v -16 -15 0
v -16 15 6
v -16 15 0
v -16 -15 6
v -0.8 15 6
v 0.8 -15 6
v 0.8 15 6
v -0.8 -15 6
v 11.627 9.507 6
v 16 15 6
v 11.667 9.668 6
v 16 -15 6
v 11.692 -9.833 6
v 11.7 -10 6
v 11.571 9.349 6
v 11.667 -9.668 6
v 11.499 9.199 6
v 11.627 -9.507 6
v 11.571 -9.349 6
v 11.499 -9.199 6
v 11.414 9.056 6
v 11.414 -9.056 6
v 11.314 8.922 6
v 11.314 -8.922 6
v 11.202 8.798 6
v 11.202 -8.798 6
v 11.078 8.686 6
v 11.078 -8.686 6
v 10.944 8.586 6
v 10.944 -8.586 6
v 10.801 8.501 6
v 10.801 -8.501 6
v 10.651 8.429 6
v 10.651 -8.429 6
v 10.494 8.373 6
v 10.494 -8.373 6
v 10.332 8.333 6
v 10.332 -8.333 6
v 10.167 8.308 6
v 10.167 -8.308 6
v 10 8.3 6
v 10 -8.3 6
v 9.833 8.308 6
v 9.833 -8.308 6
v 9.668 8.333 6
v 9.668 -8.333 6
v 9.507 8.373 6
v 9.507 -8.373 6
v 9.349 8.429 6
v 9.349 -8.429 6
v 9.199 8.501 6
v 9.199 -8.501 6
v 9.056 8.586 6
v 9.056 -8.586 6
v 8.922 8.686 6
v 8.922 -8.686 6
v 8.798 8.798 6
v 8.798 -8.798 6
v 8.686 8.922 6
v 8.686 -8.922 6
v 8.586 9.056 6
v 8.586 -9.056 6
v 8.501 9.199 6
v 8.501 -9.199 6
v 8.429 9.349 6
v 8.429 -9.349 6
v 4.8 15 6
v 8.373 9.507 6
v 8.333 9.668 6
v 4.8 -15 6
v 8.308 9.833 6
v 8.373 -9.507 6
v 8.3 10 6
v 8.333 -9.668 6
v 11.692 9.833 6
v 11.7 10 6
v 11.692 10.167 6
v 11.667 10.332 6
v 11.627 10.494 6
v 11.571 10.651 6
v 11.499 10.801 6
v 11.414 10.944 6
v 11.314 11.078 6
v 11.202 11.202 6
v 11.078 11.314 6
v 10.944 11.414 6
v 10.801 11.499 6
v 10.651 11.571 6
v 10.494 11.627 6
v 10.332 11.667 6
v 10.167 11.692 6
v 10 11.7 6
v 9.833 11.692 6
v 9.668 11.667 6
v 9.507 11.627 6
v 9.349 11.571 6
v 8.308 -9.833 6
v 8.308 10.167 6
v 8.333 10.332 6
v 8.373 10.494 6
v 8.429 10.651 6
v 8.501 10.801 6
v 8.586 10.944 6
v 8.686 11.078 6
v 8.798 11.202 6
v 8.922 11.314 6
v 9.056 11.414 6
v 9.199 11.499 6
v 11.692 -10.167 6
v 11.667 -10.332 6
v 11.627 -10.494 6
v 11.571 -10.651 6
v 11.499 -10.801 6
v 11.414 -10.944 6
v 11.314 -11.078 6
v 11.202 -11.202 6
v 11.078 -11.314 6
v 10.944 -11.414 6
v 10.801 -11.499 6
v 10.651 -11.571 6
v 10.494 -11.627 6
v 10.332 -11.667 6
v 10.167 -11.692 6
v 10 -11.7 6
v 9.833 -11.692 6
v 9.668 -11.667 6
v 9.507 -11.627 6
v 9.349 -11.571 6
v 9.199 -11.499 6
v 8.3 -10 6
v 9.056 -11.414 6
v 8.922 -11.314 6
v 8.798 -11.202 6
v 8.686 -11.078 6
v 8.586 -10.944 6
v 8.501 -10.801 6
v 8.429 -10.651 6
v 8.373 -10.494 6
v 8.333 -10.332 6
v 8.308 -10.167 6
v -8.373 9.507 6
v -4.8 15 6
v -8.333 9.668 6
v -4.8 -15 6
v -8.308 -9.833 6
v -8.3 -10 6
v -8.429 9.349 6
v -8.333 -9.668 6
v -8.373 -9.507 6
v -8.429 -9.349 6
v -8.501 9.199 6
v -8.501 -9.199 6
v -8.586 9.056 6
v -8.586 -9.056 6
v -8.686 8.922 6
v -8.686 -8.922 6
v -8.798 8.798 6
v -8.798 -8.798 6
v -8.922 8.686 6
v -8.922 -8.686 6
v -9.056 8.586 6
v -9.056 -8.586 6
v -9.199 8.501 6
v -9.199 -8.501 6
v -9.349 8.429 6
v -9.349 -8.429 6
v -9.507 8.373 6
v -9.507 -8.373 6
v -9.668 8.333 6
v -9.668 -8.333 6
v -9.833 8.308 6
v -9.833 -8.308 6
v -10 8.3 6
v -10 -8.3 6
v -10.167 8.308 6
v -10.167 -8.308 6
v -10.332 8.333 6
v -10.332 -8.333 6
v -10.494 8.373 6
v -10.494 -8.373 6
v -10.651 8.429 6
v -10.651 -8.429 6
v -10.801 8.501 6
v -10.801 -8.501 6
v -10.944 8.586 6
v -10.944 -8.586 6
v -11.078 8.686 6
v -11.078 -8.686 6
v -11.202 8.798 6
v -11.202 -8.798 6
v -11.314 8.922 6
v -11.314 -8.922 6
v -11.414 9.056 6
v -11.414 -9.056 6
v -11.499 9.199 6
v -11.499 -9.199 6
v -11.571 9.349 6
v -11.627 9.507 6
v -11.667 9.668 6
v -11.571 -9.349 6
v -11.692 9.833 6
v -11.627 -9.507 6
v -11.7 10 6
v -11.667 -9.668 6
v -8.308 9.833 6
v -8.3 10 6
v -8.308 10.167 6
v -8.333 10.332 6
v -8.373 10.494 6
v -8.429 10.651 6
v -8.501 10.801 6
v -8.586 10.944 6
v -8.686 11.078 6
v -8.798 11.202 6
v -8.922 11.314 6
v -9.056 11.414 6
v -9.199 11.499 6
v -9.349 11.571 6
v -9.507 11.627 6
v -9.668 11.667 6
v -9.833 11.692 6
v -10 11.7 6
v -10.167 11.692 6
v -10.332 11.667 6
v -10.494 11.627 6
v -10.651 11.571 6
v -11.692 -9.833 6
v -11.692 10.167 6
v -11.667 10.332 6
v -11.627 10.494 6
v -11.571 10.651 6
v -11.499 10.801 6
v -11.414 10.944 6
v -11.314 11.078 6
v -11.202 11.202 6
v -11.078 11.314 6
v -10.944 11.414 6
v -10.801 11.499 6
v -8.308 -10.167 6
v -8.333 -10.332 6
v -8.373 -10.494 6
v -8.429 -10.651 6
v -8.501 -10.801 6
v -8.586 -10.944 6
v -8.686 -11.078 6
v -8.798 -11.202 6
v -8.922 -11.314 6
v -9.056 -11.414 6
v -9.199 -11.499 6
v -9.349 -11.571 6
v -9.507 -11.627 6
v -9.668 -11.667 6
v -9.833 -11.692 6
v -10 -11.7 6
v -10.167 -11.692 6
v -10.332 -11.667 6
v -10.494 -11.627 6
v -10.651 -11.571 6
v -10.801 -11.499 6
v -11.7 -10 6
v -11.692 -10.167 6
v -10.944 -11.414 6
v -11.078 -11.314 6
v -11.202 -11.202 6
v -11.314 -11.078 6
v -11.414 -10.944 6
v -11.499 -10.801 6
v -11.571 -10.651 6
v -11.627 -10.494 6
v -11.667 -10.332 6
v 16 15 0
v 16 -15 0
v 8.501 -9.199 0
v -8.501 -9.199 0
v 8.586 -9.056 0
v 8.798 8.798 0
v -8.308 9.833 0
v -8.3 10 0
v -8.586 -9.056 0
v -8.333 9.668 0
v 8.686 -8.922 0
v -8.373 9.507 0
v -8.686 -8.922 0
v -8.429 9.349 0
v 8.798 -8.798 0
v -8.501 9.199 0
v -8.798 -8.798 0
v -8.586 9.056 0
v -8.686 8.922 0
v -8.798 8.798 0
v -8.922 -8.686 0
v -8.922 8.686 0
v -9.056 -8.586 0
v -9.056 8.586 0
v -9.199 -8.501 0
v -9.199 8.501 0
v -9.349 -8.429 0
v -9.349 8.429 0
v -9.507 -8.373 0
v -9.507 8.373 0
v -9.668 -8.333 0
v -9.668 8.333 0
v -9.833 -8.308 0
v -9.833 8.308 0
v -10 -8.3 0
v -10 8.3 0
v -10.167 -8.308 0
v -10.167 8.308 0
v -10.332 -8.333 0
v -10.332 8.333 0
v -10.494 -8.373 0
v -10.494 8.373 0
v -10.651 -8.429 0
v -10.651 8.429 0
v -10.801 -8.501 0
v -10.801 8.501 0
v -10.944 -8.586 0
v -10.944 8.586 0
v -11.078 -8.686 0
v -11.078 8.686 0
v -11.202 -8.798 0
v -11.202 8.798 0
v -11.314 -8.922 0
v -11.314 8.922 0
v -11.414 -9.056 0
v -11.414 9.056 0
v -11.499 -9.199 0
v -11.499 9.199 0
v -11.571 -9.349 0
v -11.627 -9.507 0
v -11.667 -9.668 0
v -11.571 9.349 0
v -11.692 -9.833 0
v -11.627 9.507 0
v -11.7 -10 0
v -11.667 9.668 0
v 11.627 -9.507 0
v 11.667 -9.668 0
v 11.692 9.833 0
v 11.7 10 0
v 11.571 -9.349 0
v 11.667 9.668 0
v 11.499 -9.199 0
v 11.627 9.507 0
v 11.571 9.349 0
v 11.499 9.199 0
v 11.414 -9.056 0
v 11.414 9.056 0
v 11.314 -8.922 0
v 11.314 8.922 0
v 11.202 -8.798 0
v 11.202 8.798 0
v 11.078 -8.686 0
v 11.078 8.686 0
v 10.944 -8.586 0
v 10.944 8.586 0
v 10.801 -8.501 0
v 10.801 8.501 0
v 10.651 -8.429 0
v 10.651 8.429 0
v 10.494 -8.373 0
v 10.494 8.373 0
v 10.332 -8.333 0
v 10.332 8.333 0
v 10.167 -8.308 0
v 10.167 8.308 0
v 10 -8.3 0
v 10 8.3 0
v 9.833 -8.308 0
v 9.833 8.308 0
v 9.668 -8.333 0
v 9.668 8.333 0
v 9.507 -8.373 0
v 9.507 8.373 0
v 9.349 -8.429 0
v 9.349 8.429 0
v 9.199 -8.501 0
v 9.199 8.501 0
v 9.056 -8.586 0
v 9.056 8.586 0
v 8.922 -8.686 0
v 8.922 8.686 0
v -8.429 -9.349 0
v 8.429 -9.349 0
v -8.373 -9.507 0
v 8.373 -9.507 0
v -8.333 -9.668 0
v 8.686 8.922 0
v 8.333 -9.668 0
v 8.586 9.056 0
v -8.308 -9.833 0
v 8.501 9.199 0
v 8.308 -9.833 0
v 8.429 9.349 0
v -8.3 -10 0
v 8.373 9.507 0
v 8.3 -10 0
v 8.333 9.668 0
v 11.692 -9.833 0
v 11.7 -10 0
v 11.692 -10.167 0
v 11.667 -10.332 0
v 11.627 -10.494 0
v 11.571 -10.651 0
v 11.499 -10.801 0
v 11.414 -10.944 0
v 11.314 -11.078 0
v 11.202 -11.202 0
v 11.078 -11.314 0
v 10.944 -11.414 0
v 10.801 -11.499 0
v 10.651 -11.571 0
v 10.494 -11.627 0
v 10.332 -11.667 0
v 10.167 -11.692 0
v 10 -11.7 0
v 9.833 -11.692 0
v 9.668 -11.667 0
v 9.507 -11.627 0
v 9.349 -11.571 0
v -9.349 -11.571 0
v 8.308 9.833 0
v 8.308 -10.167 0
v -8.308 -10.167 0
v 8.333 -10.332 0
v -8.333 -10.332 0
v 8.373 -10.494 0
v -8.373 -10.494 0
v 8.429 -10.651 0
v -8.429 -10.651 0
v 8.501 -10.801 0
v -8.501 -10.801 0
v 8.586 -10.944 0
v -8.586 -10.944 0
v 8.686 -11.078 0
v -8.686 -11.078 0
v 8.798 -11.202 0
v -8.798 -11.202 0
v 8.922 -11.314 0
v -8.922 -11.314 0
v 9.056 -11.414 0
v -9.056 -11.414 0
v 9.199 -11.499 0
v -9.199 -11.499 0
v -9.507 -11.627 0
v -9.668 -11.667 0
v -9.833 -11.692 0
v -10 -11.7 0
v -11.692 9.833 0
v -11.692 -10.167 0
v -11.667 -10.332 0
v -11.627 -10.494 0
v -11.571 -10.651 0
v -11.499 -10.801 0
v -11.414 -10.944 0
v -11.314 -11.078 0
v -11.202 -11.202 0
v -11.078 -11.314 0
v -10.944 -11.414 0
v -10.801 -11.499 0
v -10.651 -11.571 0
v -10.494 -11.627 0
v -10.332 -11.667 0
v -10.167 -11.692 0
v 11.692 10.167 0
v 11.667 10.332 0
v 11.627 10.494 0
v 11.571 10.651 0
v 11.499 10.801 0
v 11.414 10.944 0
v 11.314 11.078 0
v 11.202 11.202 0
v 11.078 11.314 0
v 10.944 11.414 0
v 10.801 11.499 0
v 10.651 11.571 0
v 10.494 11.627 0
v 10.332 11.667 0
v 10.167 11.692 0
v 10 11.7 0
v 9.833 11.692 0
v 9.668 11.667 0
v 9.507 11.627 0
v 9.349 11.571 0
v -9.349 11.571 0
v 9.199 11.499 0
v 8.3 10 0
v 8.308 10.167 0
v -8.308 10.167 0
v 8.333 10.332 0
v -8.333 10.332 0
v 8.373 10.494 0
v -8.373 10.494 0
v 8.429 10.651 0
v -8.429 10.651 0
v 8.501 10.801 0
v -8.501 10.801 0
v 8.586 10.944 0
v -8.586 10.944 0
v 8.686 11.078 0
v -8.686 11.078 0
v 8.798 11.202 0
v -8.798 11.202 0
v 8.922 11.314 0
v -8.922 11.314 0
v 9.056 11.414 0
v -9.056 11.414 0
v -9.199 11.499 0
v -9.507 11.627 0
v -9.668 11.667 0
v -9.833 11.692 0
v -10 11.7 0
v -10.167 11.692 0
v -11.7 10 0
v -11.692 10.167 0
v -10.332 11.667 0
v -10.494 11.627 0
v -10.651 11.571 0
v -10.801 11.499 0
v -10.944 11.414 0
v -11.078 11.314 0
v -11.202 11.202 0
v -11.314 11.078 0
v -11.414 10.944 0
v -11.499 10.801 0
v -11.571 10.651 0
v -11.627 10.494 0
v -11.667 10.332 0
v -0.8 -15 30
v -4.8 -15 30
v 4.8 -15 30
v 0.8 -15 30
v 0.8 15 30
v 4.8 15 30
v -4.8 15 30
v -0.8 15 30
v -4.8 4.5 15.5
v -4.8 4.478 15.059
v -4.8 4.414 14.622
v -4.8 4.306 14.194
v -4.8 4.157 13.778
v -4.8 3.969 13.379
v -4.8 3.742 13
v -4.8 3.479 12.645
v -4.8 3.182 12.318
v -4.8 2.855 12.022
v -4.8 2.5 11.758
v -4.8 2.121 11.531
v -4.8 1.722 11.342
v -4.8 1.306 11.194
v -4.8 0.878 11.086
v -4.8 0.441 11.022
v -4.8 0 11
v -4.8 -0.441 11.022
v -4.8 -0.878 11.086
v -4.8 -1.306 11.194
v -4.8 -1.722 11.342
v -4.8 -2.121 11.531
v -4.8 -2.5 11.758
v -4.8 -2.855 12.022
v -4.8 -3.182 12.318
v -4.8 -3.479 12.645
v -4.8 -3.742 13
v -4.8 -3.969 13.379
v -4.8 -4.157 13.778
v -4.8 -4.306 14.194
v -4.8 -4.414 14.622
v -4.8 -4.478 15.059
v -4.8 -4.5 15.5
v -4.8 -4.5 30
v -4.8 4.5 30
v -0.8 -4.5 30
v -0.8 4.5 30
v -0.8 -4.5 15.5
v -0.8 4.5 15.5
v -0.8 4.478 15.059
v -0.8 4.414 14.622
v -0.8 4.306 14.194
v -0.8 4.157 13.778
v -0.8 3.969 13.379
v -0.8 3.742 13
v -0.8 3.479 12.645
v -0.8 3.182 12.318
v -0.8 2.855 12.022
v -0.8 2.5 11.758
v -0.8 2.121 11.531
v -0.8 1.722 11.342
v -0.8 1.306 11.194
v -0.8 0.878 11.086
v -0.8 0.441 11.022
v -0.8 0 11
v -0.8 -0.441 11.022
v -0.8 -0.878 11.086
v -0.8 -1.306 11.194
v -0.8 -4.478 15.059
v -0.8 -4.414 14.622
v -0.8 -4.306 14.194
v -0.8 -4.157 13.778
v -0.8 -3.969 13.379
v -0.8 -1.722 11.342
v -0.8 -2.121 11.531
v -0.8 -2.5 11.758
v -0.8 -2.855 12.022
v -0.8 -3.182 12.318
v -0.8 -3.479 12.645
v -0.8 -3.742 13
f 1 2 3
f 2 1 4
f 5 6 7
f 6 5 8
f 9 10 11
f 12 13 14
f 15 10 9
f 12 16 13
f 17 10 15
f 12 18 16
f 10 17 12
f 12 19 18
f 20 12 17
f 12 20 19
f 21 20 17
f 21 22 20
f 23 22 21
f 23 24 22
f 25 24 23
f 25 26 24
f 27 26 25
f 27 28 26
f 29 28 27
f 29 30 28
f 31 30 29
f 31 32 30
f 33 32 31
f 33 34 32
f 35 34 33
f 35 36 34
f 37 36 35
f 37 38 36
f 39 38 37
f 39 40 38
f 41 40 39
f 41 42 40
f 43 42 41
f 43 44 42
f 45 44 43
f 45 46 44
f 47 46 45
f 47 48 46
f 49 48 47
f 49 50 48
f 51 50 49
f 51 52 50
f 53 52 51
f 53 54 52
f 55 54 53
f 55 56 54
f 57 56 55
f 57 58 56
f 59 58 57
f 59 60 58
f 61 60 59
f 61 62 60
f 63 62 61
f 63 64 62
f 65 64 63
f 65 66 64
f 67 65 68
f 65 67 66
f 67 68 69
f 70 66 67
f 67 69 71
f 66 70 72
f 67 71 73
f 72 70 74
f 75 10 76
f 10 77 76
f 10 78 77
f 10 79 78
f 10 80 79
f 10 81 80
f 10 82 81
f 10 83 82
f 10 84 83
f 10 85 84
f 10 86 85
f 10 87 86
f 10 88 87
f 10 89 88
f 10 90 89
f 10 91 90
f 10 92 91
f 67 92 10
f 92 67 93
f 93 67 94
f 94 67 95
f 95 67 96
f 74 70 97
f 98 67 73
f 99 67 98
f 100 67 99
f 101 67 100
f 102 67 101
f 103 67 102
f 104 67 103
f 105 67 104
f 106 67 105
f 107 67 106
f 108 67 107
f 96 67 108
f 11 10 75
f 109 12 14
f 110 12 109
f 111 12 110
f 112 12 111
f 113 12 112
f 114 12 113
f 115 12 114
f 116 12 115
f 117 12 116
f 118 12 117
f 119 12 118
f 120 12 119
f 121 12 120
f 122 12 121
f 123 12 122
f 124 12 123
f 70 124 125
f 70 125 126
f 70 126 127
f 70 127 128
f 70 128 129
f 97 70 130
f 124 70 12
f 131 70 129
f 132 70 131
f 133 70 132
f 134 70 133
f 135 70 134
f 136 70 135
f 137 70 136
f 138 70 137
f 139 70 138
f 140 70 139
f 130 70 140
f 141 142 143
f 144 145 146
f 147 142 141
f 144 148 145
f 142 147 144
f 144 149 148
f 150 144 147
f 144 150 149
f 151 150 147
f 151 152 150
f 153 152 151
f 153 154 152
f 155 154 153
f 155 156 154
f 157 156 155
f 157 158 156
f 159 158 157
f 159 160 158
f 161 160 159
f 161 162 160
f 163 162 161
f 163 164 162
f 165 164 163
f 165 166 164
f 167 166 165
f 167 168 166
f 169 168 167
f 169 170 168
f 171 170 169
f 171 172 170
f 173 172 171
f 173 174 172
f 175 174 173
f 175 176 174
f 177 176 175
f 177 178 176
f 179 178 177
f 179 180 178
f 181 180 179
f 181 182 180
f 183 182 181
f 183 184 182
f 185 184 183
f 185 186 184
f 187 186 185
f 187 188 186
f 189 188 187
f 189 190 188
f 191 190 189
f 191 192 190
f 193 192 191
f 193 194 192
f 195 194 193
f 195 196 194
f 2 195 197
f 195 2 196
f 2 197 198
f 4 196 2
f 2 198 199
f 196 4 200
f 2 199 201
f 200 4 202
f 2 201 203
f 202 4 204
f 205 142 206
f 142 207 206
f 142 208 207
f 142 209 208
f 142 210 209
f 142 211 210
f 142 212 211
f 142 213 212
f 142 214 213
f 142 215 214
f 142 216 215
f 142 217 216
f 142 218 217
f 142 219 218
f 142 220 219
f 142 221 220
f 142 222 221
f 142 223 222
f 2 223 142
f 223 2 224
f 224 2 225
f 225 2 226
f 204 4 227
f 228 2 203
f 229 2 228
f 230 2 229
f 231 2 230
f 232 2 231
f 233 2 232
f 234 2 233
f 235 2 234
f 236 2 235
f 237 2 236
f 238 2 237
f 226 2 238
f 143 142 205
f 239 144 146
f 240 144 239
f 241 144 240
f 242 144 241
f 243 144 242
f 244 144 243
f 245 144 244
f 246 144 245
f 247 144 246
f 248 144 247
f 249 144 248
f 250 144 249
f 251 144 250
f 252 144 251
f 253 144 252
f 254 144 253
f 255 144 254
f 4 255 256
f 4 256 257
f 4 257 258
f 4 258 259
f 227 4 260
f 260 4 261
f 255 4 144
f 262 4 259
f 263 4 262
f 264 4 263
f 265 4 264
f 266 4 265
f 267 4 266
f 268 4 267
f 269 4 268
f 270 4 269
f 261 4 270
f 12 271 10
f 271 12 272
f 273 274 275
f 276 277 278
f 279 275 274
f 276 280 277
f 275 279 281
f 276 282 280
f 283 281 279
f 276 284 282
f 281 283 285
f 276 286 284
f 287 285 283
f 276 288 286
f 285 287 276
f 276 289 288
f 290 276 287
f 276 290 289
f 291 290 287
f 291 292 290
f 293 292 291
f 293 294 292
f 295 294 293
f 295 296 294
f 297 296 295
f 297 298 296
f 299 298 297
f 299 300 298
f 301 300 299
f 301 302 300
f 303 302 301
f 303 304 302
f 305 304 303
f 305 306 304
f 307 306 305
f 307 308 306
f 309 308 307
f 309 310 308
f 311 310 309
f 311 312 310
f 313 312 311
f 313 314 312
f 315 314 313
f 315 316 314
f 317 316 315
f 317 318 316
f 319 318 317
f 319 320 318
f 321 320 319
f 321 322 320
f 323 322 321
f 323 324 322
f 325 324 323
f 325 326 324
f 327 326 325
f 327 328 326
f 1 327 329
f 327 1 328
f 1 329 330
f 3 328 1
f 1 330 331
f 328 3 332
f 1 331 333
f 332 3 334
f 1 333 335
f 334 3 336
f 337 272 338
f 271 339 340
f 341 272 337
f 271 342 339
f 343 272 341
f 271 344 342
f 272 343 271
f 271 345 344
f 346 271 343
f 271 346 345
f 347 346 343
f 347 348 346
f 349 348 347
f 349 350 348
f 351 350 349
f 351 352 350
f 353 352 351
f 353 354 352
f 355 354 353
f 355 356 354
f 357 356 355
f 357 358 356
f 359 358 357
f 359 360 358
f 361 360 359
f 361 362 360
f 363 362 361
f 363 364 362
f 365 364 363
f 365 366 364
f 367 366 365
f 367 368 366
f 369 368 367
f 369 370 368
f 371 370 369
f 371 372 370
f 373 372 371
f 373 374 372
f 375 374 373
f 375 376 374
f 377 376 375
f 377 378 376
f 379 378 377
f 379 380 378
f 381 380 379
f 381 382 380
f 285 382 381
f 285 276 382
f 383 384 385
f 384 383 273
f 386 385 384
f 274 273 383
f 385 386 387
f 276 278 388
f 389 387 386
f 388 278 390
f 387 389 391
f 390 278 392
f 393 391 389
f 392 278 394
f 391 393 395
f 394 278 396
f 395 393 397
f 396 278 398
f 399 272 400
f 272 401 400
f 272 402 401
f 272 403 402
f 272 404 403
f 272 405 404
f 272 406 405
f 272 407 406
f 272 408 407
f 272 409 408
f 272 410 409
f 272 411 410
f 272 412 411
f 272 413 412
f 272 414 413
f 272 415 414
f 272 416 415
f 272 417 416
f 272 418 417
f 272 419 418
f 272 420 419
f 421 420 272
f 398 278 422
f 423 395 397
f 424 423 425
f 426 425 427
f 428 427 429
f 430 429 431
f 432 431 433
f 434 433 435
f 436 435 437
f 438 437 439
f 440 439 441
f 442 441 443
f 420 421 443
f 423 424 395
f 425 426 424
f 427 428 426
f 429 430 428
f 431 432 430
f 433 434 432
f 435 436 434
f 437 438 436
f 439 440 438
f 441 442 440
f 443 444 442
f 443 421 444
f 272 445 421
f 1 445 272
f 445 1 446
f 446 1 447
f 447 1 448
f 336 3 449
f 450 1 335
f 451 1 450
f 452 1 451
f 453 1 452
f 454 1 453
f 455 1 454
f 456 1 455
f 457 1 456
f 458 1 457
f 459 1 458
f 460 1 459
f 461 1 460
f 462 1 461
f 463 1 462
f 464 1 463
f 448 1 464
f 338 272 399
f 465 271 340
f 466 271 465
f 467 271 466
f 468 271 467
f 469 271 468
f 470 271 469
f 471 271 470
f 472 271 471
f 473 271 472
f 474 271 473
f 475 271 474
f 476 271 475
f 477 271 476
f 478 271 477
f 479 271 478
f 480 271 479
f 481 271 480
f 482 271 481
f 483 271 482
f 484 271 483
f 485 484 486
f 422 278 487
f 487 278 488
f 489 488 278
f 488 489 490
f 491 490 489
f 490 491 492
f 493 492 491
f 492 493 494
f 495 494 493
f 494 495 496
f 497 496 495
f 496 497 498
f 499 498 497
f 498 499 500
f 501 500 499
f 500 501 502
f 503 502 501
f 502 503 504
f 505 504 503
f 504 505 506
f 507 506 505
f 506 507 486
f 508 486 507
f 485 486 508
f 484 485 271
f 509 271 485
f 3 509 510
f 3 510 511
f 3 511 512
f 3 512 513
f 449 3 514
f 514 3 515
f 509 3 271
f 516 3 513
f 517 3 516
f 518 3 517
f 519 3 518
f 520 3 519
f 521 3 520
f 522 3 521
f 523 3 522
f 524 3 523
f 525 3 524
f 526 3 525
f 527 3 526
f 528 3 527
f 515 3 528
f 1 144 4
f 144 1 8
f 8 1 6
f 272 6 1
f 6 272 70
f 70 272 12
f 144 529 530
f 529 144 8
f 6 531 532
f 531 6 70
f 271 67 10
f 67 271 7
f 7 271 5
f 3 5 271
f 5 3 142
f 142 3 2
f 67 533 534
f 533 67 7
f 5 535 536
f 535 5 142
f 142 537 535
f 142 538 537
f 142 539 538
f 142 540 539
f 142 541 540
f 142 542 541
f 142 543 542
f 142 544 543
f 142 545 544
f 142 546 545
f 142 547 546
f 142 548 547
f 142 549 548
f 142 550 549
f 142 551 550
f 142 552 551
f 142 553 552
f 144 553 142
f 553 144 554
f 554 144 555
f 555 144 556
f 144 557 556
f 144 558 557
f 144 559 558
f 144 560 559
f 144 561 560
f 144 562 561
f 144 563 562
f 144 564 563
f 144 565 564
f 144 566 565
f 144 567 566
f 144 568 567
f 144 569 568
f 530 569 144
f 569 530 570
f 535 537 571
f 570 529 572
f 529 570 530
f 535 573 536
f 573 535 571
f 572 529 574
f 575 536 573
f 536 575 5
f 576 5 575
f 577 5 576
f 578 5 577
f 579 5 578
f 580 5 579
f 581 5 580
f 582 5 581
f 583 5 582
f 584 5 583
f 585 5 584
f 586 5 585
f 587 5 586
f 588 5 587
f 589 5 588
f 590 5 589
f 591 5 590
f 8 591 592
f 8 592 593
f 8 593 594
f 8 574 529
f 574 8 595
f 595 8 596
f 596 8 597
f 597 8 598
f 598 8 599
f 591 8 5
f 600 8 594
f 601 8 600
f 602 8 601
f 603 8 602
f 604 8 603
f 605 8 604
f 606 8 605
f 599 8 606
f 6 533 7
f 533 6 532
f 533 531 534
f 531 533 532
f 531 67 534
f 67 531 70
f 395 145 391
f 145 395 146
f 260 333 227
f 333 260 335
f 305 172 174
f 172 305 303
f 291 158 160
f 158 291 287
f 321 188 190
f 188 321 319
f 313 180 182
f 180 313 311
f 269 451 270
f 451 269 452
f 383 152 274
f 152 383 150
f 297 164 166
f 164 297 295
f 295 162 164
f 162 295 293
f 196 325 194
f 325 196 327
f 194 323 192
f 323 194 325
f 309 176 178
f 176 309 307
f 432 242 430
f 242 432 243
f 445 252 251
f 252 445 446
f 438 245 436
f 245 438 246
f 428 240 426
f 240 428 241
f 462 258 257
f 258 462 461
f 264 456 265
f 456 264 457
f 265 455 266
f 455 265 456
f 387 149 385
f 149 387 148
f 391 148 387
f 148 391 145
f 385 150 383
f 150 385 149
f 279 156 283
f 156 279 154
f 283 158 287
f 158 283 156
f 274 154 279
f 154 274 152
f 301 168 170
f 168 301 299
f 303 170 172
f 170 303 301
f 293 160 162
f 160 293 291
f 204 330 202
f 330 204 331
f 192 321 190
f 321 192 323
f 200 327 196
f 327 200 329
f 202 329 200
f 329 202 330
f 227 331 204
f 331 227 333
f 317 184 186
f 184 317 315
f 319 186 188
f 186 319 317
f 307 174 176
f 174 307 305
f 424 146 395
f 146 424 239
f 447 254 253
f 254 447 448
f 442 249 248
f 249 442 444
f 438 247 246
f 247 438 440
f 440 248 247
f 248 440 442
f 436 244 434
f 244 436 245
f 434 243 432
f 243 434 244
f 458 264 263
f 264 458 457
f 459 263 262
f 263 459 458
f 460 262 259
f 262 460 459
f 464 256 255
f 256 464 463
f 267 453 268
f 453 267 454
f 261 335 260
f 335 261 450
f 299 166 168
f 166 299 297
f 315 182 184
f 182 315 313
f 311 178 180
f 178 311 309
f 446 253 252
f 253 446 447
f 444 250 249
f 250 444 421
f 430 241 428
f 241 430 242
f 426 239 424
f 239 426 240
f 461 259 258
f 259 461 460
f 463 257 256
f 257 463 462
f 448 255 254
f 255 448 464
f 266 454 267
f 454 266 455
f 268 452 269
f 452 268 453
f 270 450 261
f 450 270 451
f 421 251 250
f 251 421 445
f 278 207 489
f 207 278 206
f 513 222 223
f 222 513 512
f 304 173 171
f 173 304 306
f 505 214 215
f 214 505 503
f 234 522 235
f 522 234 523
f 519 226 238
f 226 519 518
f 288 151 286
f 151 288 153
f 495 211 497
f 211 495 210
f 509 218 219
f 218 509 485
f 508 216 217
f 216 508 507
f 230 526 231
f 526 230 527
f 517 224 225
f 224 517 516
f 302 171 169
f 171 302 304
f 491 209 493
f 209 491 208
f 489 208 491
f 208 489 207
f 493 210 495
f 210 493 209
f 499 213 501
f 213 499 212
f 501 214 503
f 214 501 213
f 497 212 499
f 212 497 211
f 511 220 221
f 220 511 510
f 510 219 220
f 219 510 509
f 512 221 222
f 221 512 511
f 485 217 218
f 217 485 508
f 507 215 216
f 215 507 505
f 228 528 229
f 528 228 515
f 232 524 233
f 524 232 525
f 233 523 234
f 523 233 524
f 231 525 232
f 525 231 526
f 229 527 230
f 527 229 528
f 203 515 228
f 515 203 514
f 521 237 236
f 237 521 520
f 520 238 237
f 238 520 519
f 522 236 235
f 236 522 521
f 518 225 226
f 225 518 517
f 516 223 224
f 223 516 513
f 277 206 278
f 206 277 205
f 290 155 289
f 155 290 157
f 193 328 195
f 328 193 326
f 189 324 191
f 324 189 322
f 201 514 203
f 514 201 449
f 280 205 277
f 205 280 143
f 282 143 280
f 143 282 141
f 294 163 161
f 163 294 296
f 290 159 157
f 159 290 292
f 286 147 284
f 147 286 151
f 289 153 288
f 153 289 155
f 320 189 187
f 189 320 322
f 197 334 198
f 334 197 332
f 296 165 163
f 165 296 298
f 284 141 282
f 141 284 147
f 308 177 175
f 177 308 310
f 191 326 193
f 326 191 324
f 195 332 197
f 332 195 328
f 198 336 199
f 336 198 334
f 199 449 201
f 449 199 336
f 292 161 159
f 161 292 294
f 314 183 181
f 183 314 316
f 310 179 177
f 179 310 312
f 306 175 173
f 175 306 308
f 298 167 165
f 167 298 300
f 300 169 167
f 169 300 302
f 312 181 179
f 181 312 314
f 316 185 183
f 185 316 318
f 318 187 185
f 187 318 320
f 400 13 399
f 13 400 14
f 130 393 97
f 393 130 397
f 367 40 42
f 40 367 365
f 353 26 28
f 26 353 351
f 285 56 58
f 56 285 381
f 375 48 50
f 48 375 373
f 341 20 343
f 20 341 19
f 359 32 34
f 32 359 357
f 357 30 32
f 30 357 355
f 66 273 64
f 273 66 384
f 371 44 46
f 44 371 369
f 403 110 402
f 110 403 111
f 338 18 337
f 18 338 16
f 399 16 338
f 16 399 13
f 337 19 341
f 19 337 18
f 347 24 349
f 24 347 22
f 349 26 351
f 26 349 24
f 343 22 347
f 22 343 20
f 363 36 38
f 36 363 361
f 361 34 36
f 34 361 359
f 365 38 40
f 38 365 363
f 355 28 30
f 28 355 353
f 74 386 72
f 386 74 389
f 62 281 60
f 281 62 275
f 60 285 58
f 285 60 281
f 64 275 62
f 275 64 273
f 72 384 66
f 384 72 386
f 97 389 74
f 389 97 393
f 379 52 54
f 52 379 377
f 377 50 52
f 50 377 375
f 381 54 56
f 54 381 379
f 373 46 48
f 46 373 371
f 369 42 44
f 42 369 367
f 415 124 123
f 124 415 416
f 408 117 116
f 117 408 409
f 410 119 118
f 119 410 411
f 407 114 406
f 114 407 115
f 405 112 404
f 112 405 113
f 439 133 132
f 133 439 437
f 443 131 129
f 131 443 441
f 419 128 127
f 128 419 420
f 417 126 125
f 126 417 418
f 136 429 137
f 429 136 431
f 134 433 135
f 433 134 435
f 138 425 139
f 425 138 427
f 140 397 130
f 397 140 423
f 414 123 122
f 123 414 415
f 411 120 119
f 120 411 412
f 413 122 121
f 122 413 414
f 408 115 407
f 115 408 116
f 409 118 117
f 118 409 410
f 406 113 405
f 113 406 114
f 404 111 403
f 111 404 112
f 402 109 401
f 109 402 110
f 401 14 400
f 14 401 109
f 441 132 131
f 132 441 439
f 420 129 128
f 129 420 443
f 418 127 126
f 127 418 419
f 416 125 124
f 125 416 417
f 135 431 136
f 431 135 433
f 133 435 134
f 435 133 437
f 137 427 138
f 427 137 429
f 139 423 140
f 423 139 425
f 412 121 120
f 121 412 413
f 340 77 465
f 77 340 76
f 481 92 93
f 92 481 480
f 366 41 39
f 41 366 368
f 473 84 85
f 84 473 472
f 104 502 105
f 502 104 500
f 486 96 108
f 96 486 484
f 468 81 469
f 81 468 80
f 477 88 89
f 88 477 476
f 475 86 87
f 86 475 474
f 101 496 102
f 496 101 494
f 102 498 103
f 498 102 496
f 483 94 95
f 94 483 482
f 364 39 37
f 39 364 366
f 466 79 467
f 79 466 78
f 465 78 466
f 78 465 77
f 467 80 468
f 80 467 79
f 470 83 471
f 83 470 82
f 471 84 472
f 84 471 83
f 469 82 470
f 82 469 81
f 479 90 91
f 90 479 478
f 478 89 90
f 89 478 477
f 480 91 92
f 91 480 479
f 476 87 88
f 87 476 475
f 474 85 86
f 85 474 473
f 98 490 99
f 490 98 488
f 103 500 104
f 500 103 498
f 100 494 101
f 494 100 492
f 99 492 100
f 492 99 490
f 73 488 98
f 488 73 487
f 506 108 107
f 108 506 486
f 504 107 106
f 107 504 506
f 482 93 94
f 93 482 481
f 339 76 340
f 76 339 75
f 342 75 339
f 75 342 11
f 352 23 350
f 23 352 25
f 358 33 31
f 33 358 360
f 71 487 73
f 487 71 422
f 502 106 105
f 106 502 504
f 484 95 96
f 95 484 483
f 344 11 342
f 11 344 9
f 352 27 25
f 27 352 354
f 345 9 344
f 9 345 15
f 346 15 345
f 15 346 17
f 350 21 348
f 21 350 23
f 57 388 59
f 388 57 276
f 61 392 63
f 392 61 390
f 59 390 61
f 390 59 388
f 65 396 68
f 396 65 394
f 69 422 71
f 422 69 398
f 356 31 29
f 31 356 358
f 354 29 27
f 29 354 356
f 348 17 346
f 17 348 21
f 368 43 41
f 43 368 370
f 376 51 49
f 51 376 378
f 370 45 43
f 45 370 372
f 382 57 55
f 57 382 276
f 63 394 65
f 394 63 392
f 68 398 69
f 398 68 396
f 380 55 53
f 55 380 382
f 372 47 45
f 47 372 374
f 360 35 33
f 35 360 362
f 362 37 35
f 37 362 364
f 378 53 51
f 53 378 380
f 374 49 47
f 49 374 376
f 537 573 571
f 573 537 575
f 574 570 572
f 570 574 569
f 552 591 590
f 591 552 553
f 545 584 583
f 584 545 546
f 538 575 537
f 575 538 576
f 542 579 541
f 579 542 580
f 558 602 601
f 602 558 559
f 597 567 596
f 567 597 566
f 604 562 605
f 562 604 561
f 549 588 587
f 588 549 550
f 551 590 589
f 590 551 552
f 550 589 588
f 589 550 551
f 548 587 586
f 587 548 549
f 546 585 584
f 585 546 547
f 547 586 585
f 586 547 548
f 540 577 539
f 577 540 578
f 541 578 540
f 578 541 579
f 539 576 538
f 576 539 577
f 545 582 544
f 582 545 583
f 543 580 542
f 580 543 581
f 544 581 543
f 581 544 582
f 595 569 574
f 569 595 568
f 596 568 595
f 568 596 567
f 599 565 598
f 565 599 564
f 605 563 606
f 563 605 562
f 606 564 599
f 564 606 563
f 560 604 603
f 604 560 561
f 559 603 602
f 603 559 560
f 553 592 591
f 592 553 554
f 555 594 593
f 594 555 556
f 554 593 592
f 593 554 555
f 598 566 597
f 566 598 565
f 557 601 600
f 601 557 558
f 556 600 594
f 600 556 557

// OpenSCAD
// ============================================================
//  滑块联轴夹 v2 —— 夹住"活塞挡片"，实现 推 + 拉
//  几何：底板(拧在滑块上) 上长出 前后两片竖板，
//        两板之间夹住活塞挡片；前板开"杆槽"让活塞杆从上方落入。
//        推：挡片顶后板； 拉：挡片顶前板。
//  ============ 用前改下面"针筒实测"参数 ============
// ============================================================

// ---- 已知：模组滑块安装孔 ----
hole_sp = 20;     // 孔距 (mm)
mnt_d   = 3.4;    // M3 通孔 (mm)

// ---- 针筒实测（10mL）----
rod_d   = 8;      // 靠近挡片那段的杆宽(十字的窄段)，用于过杆孔
pad_d   = 17;     // 活塞挡片(圆盘)直径
pad_t   = 1.0;    // 活塞挡片厚度
axis_h  = 15.5;   // 夹子底面(滑块顶面) → 活塞杆轴心 = 44 − 28.5

// ---- 结构参数 ----
plate_p = 4;      // 竖板厚
base_t  = 6;      // 底板厚
pad_clr = 0.6;    // 挡片两侧间隙
rod_clr = 1.0;    // 杆槽间隙 → 过杆孔 = 8+1 = 9mm
top_m   = 6;      // 板顶高出挡片顶部的余量
W       = 32;     // 底板 X 向尺寸
Ysize   = 30;     // 底板 Y 向尺寸

$fn = 64;

module coupler() {
    gap  = pad_t + pad_clr;                 // 前后板内距 = 挡片厚 + 间隙
    yh   = Ysize/2;                          // Y 方向半宽 = 15
    ztop = axis_h + pad_d/2 + top_m;         // 竖板顶高

    f0 = -gap/2 - plate_p;                    // 前板外缘 x
    f1 = -gap/2;                             // 前板内缘 x
    b0 =  gap/2;                             // 后板内缘 x
    b1 =  gap/2 + plate_p;                   // 后板外缘 x

    difference() {
        union() {
            // 底板（前后板都从这里长出来 → 一体，不再是刀口接触）
            translate([-W/2, -yh, 0]) cube([W, 2*yh, base_t]);
            // 前板
            translate([f0, -yh, base_t]) cube([plate_p, 2*yh, ztop - base_t]);
            // 后板
            translate([b0, -yh, base_t]) cube([plate_p, 2*yh, ztop - base_t]);
        }
        // 4×M3 安装孔（你只用对角 2 个也行）
        for (sx = [-1,1]) for (sy = [-1,1])
            translate([sx*hole_sp/2, sy*hole_sp/2, -1])
                cylinder(d = mnt_d, h = base_t + 2);

        // 前板"杆槽"：从轴心向上开口，宽 = 杆径 + 间隙
        translate([f0 - 1, -(rod_d + rod_clr)/2, axis_h])
            cube([plate_p + 2, rod_d + rod_clr, ztop - axis_h + 2]);
        // 杆槽底部半圆让位
        translate([f0 + plate_p/2, 0, axis_h])
            rotate([0,90,0])
            cylinder(d = rod_d + rod_clr, h = plate_p + 2, center = true);
    }
}

coupler();
// 改好参数 → 导出 coupler.stl
